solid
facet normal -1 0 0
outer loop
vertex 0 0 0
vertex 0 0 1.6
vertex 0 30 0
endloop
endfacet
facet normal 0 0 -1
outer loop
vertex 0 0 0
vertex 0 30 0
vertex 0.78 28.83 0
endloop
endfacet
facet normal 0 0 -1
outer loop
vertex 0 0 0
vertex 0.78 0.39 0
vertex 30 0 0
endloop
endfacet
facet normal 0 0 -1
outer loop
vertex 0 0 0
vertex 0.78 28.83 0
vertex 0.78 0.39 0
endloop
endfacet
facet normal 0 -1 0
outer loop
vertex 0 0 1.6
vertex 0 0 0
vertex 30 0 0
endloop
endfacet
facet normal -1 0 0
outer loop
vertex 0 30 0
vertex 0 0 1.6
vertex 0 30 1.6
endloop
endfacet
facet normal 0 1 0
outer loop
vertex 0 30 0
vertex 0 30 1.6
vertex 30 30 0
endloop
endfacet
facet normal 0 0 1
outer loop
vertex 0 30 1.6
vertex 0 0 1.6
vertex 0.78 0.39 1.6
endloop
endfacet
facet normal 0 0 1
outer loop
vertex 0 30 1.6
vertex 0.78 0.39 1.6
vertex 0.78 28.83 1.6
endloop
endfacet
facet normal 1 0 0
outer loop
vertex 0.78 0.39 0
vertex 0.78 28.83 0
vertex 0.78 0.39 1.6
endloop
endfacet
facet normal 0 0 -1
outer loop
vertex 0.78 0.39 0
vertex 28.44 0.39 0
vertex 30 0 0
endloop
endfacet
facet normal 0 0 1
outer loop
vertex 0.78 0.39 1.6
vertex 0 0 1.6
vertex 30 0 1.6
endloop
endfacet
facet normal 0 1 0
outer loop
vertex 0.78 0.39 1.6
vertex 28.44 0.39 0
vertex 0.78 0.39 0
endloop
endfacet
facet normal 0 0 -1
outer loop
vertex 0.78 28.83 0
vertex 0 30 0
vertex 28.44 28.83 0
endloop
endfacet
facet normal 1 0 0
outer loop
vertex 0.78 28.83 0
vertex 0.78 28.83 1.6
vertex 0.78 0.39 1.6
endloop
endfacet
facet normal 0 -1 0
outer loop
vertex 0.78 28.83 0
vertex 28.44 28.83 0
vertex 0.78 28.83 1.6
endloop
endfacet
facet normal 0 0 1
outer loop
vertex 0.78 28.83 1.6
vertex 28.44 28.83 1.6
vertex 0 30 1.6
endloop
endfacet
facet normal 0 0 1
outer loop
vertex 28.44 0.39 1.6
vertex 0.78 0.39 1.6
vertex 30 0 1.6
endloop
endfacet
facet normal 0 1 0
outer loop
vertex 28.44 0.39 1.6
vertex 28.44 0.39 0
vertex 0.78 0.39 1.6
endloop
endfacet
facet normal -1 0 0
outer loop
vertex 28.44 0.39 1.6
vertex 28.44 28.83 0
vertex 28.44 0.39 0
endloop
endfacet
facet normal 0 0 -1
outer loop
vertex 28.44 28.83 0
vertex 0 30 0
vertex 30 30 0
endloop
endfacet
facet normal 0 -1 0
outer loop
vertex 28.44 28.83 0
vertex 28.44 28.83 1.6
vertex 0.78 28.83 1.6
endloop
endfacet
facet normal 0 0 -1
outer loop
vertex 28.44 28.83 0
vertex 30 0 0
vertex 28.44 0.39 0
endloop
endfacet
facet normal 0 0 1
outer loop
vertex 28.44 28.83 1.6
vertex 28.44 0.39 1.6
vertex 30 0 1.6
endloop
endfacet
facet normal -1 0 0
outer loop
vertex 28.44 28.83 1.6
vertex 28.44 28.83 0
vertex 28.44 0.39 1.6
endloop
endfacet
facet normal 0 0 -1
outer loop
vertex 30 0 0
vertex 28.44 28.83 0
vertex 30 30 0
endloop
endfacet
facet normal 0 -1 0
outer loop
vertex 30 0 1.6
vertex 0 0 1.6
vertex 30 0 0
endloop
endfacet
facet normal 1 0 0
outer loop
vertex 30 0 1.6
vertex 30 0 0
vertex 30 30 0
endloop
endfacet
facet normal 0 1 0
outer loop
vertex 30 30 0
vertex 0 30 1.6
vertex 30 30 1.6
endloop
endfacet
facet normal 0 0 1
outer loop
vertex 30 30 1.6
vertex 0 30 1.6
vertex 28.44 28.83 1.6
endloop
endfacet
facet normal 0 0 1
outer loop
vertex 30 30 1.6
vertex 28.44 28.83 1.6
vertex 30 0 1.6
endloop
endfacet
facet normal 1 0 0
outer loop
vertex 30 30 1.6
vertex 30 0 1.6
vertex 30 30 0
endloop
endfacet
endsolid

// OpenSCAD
line_thickness=0.39;
layer_thickness=0.2;
cube_size=30;
layers=8;

cube_height=layer_thickness*layers;

difference() {
  cube([cube_size,cube_size,cube_height]);
  translate([line_thickness*2,line_thickness,-1])
      cube([cube_size-line_thickness*6,cube_size-line_thickness*4,cube_height+2]);
}
